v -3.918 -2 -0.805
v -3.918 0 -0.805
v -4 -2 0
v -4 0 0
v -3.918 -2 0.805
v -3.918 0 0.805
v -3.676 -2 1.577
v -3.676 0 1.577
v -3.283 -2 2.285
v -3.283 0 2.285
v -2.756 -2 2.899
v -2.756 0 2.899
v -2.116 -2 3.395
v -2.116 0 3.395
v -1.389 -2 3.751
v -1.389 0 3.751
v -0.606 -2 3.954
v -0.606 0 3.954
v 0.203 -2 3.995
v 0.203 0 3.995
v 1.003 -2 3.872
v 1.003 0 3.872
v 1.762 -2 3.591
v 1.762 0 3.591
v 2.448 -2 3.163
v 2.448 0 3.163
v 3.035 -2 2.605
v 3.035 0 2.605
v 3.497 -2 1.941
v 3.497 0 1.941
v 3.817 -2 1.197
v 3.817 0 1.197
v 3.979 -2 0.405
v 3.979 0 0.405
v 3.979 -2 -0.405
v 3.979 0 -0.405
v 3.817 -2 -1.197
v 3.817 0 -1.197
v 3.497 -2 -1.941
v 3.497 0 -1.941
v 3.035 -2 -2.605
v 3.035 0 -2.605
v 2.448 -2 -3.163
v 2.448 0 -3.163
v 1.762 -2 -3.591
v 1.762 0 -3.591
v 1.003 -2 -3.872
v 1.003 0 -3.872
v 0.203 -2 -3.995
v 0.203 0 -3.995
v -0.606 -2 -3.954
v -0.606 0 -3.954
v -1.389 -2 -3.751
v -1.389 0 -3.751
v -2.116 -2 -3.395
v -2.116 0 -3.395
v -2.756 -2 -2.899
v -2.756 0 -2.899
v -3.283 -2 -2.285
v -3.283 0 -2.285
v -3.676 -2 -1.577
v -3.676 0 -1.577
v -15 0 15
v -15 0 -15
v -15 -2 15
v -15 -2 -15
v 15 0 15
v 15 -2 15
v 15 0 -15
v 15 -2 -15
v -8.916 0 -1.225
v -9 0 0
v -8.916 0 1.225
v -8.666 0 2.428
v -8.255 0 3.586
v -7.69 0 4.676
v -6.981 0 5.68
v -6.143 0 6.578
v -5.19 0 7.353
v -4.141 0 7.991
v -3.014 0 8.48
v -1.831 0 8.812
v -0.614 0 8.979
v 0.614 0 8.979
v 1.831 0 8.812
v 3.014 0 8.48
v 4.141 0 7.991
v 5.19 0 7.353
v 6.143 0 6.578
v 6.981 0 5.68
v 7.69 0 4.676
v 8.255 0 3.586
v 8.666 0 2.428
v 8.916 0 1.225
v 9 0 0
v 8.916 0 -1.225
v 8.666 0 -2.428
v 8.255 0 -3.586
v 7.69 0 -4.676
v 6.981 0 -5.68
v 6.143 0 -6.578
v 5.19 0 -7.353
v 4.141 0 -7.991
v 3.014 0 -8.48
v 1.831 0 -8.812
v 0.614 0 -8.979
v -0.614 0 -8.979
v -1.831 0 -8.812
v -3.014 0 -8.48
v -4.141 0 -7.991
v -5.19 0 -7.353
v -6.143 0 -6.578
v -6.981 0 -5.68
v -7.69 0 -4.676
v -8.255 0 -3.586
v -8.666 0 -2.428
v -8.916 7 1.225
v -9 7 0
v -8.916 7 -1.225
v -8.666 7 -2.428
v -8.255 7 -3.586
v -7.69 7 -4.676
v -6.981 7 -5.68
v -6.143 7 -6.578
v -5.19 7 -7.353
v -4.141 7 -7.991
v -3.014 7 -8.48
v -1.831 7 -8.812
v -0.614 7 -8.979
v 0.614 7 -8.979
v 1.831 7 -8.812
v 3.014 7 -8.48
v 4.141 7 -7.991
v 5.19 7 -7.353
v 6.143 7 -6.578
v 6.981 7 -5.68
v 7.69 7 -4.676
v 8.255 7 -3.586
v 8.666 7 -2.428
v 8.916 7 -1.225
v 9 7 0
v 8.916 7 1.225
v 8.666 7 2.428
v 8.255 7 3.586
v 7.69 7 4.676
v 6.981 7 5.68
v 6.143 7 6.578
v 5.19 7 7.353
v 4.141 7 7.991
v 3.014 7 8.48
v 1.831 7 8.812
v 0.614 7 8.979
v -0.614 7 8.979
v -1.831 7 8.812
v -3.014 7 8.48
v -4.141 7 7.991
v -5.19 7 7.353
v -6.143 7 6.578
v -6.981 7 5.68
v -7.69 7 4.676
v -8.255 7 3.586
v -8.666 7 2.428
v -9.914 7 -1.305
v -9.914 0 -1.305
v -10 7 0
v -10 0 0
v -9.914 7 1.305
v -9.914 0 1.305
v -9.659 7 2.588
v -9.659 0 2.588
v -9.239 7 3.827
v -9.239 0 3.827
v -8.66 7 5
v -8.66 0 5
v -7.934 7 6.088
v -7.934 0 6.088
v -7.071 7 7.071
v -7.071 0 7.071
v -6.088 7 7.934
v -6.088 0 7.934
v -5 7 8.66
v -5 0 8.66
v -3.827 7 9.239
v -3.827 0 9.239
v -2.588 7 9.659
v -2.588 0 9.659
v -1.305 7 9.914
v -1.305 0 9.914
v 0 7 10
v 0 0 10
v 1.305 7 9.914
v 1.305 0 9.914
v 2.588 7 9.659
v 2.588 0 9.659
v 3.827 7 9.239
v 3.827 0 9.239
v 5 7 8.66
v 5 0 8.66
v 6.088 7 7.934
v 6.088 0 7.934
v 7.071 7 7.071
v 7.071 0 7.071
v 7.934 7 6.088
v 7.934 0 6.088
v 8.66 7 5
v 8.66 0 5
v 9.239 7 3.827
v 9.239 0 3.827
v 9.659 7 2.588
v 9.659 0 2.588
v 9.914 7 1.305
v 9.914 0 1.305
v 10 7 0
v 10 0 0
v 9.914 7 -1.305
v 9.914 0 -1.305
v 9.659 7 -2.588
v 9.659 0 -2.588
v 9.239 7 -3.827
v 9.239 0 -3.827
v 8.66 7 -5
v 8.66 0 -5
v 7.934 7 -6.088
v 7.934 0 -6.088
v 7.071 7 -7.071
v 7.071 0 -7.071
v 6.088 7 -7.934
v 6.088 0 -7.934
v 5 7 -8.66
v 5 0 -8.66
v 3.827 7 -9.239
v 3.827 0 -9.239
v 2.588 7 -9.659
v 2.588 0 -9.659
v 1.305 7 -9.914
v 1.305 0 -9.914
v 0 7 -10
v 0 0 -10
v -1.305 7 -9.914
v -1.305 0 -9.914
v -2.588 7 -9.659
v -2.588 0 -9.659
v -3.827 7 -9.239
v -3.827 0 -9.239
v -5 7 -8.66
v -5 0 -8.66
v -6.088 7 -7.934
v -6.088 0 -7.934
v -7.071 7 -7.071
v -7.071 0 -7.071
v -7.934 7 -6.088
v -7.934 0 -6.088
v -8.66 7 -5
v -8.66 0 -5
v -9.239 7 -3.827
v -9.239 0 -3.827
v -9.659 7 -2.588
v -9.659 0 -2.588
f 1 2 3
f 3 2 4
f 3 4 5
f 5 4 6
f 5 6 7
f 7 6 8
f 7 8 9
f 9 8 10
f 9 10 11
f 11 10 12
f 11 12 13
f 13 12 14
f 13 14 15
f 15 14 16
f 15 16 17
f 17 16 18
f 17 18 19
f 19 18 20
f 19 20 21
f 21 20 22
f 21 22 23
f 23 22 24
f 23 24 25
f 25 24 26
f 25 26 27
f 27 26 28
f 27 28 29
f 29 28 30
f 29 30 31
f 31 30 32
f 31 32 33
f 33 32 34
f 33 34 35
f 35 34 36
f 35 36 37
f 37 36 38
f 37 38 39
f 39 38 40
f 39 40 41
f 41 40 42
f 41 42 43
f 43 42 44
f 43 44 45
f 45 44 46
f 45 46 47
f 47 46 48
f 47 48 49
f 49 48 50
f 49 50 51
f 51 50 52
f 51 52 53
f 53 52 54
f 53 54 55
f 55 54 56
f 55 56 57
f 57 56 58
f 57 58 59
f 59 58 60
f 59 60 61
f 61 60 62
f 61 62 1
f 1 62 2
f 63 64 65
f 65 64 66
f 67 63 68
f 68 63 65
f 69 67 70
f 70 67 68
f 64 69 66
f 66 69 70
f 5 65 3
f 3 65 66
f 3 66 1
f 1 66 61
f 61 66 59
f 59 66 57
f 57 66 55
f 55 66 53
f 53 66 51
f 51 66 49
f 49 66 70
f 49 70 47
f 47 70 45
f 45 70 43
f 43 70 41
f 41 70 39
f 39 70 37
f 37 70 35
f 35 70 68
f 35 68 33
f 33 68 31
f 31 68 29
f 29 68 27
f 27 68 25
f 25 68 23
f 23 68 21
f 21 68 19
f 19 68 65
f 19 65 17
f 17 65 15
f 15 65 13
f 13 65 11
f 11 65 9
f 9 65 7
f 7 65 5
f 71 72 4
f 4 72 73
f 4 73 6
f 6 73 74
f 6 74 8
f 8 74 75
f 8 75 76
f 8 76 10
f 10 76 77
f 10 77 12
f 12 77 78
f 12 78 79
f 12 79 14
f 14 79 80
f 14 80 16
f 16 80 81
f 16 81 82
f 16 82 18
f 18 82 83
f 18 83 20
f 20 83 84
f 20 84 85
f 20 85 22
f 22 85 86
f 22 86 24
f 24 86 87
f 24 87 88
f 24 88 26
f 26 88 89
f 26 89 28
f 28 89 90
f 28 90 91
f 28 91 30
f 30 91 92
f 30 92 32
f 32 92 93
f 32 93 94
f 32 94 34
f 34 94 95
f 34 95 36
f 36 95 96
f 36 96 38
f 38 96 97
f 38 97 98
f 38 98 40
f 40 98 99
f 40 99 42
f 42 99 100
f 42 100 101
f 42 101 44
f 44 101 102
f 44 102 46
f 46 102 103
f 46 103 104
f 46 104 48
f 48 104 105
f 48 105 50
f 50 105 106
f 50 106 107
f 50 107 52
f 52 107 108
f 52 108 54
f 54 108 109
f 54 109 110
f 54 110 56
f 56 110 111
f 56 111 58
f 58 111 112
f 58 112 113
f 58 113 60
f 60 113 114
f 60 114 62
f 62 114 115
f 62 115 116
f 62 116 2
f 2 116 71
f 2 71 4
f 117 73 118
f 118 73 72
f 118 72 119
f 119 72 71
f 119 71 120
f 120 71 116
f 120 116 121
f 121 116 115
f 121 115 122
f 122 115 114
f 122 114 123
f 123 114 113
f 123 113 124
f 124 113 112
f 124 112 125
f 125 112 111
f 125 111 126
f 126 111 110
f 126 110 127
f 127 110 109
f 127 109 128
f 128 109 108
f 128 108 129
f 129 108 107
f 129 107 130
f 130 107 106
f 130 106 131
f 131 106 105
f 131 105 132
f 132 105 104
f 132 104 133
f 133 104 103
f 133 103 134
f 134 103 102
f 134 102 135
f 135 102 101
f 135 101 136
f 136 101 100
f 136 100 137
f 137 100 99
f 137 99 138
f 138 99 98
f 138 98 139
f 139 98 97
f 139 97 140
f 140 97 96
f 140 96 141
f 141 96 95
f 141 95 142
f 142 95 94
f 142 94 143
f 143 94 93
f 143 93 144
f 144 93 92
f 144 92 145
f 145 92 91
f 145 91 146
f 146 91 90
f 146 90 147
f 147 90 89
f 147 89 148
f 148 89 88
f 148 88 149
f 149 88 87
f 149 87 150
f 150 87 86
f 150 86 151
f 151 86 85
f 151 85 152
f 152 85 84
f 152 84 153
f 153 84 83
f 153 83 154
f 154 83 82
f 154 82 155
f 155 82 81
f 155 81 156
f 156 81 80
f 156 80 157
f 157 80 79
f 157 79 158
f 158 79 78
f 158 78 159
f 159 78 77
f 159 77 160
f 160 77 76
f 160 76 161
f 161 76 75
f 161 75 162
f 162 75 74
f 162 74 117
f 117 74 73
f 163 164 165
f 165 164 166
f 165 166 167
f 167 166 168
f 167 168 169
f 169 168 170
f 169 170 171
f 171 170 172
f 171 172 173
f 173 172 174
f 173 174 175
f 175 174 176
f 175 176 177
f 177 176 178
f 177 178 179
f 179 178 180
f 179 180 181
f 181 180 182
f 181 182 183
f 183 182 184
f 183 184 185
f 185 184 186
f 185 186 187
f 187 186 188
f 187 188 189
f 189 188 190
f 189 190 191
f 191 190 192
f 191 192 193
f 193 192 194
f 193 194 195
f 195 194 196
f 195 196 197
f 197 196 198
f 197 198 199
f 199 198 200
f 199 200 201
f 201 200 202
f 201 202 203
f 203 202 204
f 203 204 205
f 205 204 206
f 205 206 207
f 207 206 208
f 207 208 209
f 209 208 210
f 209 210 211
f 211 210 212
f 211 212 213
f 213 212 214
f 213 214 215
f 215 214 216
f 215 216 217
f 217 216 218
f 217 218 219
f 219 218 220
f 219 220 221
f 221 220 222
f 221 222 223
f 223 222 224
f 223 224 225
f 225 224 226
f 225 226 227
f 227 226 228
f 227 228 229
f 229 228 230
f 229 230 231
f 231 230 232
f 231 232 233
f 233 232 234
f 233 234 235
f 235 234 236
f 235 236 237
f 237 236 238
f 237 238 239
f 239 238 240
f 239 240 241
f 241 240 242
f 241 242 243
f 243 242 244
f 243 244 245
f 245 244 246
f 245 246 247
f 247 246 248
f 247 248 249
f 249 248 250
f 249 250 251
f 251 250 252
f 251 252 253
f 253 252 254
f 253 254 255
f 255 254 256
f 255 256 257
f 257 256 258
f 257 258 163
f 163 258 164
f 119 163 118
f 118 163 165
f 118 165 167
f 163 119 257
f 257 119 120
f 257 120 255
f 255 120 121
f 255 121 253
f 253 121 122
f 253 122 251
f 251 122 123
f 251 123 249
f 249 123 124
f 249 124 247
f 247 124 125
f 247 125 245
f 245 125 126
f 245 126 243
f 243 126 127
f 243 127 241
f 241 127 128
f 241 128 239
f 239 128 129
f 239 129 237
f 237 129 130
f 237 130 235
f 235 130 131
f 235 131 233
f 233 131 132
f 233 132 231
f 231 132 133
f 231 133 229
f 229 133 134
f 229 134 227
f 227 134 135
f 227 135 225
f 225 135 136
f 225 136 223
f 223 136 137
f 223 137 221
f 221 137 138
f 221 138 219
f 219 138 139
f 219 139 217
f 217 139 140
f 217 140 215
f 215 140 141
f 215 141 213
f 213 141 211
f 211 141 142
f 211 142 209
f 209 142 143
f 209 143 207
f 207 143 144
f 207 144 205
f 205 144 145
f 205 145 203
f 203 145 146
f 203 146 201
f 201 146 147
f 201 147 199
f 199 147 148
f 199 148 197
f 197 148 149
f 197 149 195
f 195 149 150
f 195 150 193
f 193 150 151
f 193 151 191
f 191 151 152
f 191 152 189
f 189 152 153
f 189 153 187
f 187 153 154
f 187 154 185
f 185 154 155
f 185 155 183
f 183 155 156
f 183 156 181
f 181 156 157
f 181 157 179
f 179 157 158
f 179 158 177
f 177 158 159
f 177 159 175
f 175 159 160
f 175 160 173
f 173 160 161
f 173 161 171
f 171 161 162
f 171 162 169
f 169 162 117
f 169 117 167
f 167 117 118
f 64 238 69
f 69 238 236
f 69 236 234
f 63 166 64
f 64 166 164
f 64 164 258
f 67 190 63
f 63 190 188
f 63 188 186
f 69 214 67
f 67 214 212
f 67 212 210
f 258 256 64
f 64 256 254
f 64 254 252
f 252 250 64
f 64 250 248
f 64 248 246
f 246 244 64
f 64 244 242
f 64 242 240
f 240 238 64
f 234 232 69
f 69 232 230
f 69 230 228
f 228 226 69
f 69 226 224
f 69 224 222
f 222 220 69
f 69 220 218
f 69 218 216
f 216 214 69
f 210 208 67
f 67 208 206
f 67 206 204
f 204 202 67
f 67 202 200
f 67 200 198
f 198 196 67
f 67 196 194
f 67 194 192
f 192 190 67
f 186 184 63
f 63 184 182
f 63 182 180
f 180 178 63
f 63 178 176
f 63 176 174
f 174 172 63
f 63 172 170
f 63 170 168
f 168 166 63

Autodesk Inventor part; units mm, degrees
ref_plane "YZ Plane" through (0, 0, 0) normal (1, 0, 0) x (0, 1, 0)
ref_plane "XZ Plane" through (0, 0, 0) normal (0, 1, 0) x (-1, 0, 0)
ref_plane "XY Plane" through (0, 0, 0) normal (0, 0, 1) x (1, 0, 0)
sketch "Boceto1" plane through (0, 0, 0) normal (0, 1, 0) x (-1, 0, 0)
  line L0 (15, -15) -> (-15, -15)
  line L1 (-15, -15) -> (-15, 15)
  line L2 (-15, 15) -> (15, 15)
  line L3 (15, 15) -> (15, -15)
  line L4 (15, -15) -> (-15, 15) construction
  line L5 (-15, -15) -> (15, 15) construction
  circle A0 centre (0, 0) radius 9
  circle A1 centre (0, 0) radius 4
  circle A2 centre (0, 0) radius 10
  dimension "d0" = 30
  dimension "d1" = 30
  dimension "d9" = 18
  dimension "d12" = 8
  dimension "d15" = 20
extrude "Extrusión1" add sketch "Boceto1" against normal blind 2 contours L0 L1 L2 L3 | A0 | A1 | A2
extrude "Extrusión4" cut sketch "Boceto1" against normal blind 3 contours A1
extrude "Extrusión5" add sketch "Boceto1" along normal blind 7 contours A2
properties part number "RodamientoAspa"
